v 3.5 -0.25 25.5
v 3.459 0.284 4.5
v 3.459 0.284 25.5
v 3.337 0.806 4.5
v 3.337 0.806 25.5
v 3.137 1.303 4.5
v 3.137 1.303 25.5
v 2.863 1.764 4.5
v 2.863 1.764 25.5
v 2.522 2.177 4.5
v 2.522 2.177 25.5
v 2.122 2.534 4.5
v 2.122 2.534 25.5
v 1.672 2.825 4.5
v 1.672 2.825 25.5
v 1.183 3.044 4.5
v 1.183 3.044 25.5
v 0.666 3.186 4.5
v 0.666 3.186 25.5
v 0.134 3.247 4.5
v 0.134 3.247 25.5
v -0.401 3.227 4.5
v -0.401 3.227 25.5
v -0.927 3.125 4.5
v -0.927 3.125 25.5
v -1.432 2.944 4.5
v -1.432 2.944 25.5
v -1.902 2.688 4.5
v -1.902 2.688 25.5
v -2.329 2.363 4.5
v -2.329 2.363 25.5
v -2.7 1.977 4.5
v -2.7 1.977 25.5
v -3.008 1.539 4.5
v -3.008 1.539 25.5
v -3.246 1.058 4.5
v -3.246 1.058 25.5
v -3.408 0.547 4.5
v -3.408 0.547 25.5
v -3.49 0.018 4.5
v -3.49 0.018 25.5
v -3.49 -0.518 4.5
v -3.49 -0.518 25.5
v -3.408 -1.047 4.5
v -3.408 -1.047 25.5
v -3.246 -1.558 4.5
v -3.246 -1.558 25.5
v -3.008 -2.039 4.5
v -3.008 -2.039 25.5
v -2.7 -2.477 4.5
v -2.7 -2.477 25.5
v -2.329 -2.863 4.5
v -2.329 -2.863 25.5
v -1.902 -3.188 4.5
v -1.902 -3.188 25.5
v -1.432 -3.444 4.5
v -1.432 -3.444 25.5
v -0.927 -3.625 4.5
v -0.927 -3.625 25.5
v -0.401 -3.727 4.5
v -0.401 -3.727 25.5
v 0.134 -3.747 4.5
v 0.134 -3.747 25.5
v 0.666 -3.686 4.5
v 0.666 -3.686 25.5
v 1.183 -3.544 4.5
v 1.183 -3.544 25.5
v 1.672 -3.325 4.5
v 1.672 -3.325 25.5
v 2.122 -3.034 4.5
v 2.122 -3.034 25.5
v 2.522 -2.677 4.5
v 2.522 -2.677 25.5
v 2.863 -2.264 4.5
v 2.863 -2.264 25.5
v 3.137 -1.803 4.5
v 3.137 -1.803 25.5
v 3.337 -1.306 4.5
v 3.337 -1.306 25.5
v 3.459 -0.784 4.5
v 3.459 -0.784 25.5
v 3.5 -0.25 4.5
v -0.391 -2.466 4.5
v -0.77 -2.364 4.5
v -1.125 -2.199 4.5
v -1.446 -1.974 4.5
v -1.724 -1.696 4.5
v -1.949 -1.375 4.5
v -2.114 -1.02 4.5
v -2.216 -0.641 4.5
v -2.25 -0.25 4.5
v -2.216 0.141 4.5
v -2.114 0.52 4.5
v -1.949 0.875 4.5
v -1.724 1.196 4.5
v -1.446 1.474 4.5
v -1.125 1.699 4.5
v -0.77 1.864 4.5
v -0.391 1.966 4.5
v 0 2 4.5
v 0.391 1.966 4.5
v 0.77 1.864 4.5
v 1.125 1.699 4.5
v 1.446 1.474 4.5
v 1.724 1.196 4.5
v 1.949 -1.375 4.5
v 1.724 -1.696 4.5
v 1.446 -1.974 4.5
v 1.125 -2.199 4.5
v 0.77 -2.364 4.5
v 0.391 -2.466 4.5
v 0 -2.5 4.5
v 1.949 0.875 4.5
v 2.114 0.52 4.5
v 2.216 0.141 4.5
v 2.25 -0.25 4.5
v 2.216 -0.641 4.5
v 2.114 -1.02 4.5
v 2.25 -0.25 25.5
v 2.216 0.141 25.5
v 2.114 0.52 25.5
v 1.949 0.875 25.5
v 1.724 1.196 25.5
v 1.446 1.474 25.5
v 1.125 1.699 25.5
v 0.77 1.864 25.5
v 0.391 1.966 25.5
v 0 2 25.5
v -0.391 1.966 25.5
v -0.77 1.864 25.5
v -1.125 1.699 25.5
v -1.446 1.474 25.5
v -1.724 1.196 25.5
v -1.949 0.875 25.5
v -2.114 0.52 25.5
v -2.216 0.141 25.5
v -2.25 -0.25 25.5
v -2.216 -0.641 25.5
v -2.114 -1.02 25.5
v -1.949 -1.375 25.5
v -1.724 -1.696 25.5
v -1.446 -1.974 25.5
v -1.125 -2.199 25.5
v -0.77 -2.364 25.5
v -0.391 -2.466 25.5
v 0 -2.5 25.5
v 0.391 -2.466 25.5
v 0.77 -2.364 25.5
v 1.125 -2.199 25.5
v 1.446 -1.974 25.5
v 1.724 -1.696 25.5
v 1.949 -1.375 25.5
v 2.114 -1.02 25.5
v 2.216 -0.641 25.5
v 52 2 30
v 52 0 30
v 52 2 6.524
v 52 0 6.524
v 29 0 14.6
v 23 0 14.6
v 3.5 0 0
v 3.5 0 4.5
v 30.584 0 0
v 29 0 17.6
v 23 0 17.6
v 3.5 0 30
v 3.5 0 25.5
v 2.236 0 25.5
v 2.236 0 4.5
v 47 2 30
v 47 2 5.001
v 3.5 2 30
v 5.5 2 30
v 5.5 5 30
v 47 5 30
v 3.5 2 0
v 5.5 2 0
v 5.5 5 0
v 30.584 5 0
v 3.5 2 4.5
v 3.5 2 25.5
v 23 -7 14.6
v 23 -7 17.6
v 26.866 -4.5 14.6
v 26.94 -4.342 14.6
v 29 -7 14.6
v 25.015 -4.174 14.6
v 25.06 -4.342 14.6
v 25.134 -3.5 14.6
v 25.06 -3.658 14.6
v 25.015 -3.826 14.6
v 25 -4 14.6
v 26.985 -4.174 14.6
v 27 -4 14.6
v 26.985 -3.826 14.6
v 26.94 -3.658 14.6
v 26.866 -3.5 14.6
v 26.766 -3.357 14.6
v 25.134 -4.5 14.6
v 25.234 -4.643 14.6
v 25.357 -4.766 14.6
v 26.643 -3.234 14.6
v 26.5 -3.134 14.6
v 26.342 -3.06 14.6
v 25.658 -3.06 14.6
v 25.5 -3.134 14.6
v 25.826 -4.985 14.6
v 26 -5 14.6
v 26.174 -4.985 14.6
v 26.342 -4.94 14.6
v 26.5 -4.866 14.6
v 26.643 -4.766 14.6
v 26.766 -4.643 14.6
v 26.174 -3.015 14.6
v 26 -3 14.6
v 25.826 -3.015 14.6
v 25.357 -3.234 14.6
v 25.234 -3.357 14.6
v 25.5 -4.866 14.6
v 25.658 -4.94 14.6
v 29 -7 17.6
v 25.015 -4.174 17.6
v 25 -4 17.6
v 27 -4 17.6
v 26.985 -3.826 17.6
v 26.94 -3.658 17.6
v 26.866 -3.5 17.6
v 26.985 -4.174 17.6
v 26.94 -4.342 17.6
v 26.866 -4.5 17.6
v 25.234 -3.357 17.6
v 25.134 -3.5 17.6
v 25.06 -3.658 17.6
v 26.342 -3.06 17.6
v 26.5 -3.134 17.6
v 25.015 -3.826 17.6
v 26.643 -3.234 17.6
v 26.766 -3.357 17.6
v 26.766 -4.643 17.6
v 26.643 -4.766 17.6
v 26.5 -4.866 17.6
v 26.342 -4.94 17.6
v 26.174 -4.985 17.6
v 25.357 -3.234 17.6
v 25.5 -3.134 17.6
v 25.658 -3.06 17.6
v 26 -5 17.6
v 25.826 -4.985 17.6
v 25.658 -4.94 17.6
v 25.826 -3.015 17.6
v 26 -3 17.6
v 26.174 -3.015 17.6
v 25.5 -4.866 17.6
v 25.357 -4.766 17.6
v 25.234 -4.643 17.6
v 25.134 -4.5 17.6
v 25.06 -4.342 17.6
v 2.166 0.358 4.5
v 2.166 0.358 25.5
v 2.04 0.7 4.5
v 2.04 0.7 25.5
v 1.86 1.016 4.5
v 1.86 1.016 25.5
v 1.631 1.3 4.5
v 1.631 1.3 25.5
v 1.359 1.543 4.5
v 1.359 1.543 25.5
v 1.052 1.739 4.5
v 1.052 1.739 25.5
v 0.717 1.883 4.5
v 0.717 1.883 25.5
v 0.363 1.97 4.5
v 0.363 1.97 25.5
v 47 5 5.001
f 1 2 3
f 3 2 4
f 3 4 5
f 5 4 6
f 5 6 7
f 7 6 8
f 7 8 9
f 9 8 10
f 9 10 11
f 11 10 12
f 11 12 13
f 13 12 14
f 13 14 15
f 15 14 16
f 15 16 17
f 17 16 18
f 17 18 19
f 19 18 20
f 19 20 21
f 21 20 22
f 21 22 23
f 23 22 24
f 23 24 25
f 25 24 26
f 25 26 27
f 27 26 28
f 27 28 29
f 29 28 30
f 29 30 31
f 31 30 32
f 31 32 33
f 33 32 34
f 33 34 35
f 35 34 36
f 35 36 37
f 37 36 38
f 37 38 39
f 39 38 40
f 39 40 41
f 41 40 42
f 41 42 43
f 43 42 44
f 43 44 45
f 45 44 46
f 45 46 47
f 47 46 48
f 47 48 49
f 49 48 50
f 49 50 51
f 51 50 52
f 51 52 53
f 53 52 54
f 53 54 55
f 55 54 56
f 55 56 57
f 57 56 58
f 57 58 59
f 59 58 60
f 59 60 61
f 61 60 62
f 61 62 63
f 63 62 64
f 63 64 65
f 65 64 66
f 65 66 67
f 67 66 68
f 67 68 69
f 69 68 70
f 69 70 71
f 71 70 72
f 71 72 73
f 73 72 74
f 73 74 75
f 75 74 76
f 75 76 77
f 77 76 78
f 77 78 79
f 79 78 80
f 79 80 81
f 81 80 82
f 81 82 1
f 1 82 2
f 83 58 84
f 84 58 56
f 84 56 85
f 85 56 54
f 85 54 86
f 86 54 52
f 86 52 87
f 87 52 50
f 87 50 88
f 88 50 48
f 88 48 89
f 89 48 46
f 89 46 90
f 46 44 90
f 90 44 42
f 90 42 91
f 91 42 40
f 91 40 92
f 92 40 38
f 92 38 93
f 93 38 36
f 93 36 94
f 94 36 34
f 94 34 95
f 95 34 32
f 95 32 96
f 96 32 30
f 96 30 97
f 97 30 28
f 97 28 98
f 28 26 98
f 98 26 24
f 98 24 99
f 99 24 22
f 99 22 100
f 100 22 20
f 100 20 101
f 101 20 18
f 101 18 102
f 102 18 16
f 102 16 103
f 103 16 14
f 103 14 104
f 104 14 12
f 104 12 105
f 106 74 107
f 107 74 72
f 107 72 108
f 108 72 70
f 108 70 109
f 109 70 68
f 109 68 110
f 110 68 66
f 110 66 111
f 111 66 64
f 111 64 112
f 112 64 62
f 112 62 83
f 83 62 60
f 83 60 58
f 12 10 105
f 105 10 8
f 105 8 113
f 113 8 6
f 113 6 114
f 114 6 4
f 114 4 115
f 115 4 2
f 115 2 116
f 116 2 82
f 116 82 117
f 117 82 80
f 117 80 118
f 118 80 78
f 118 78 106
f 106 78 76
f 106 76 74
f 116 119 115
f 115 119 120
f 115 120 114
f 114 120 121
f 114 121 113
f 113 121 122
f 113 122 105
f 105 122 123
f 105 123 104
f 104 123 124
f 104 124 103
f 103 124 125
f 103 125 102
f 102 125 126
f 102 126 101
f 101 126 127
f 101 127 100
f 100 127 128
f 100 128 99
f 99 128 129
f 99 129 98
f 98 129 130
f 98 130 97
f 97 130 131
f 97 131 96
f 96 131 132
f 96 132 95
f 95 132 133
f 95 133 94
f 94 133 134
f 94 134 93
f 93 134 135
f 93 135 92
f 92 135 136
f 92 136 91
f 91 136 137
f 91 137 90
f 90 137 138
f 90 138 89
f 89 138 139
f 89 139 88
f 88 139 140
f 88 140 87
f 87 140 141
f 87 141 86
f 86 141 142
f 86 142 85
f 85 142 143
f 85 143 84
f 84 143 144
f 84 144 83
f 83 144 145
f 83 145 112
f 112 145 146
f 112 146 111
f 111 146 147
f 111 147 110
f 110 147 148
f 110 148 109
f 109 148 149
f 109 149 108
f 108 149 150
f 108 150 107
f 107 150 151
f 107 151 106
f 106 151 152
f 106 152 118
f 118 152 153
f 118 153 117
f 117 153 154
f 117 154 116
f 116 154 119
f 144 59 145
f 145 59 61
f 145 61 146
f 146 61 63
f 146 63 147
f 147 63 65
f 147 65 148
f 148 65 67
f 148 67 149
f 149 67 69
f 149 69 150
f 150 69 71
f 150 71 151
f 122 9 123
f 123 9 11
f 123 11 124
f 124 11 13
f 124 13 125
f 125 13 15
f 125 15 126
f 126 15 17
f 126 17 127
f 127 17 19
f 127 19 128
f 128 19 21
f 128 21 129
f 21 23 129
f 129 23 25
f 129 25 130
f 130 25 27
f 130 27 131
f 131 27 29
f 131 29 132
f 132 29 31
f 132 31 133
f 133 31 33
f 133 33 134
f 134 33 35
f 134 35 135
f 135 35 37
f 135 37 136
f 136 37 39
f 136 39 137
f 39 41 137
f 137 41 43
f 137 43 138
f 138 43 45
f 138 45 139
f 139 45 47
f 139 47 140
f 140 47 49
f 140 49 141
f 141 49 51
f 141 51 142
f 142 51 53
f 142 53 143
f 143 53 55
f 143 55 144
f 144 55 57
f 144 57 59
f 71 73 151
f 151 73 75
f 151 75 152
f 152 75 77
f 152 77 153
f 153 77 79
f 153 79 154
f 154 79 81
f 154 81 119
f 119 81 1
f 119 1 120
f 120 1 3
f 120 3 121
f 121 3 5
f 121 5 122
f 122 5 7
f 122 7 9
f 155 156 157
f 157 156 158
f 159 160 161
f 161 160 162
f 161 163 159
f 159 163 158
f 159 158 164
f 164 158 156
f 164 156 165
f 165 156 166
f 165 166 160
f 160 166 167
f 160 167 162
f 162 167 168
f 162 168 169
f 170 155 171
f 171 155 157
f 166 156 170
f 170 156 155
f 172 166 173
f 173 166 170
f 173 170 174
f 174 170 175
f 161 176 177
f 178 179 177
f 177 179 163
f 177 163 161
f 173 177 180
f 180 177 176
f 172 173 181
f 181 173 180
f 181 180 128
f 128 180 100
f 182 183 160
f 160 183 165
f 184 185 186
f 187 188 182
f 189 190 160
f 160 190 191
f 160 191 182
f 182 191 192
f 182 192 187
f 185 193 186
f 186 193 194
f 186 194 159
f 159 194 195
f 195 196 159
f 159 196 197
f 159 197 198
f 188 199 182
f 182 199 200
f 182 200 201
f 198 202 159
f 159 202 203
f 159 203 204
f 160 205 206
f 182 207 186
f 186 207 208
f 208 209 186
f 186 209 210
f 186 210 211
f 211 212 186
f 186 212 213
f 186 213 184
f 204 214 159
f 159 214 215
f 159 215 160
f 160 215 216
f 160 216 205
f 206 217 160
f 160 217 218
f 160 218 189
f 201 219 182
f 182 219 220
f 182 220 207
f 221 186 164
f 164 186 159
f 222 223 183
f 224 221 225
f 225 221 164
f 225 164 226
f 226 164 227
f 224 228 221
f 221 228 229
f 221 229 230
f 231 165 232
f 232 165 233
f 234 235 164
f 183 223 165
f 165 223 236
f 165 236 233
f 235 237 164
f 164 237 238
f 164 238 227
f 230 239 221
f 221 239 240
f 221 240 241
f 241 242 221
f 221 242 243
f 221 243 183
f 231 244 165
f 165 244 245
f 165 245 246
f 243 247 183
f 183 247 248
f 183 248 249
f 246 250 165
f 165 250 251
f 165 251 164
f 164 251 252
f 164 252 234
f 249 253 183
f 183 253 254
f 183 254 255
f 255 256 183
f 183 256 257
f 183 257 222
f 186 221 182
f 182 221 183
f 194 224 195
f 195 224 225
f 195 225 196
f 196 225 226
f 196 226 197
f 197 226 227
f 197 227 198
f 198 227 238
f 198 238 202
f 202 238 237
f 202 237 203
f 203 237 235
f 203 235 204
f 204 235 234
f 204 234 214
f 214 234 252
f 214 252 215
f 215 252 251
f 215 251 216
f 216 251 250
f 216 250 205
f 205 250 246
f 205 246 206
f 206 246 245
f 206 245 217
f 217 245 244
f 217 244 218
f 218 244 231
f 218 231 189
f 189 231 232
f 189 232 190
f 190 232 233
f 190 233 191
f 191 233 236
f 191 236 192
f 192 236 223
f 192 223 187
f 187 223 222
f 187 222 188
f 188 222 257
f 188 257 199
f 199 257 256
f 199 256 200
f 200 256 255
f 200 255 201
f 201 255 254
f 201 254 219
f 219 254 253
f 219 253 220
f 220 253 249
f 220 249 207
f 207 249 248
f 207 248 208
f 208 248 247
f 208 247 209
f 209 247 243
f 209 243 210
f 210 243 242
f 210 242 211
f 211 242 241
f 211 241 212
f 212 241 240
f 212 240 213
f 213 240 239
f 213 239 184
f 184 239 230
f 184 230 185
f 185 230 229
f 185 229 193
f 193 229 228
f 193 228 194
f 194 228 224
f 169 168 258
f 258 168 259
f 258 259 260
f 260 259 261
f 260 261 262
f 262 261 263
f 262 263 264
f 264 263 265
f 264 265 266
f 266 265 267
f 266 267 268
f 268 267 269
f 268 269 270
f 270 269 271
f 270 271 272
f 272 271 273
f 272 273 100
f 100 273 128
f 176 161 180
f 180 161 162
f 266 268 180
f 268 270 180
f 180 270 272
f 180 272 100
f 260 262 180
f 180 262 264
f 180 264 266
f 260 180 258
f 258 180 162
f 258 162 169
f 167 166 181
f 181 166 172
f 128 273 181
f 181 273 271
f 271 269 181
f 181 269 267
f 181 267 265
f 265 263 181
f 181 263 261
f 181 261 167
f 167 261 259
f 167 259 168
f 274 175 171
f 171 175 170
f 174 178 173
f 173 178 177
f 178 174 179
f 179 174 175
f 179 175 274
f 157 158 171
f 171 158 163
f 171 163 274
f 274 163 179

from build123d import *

# Parameters (mm, degrees)
SKETCH1_W                = 52
SKETCH1_H                = 30
BOSS_EXTRUDE1_DEPTH      = 2
SKETCH3_W                = 6
SKETCH3_H                = 3
BOSS_EXTRUDE3_DEPTH      = 7
SKETCH4_R                = 1
CUT_EXTRUDE1_DEPTH       = 56.342208124
BOSS_EXTRUDE4_DEPTH      = 10.5
BOSS_EXTRUDE4_DEPTH_BACK = 10.5
SKETCH5_R                = 3.5
SKETCH5_R_2              = 2.25
SKETCH6_R                = 2.25
CUT_EXTRUDE2_DEPTH       = 61.440052945
SKETCH7_W                = 4.769814724
SKETCH7_H                = 4.854263269
SKETCH7_W_2              = 3.5
SKETCH7_H_2              = 7.262003205
CUT_EXTRUDE3_DEPTH       = 61.704200843
SKETCH8_W                = 41.5
SKETCH8_H                = 30
BOSS_EXTRUDE5_DEPTH      = 3
CUT_EXTRUDE4_DEPTH       = 61.440052945


with BuildPart() as part:
    # Sketch1 → Boss-Extrude1 (new body)
    with BuildSketch(Plane(origin=(0, 0, 0), x_dir=(1, 0, 0), z_dir=(0, 1, 0))):
        with Locations((26, -15)):
            Rectangle(SKETCH1_W, SKETCH1_H)
    extrude(amount=BOSS_EXTRUDE1_DEPTH)

    # Sketch3 → Boss-Extrude3 (add)
    with BuildSketch(Plane.XZ):
        with Locations((26, 16.1)):
            Rectangle(SKETCH3_W, SKETCH3_H)
    extrude(amount=BOSS_EXTRUDE3_DEPTH)

    # Sketch4 → Cut-Extrude1 (cut, through all)
    with BuildSketch(Plane.XY.offset(17.6)):
        with Locations((26, -4)):
            Circle(SKETCH4_R)
    extrude(amount=-CUT_EXTRUDE1_DEPTH, mode=Mode.SUBTRACT)

    # Sketch6 → Cut-Extrude2 (cut, through all)
    with BuildSketch(Plane.XY.offset(30)):
        with Locations((0, -0.25)):
            Circle(SKETCH6_R)
    extrude(amount=-CUT_EXTRUDE2_DEPTH, mode=Mode.SUBTRACT)

    # Sketch7 → Cut-Extrude3 (cut, through all)
    with BuildSketch(Plane(origin=(0, 2, 0), x_dir=(1, 0, 0), z_dir=(0, 1, 0))):
        with Locations((1.115092638, -27.927131635)):
            Rectangle(SKETCH7_W, SKETCH7_H)
        with Locations((1.75, -0.868998397)):
            Rectangle(SKETCH7_W_2, SKETCH7_H_2)
    extrude(amount=-CUT_EXTRUDE3_DEPTH, mode=Mode.SUBTRACT)

    # Sketch8 → Boss-Extrude5 (add)
    with BuildSketch(Plane(origin=(0, 2, 0), x_dir=(1, 0, 0), z_dir=(0, 1, 0))):
        with Locations((26.25, -15)):
            Rectangle(SKETCH8_W, SKETCH8_H)
    extrude(amount=BOSS_EXTRUDE5_DEPTH)

    # Sketch9 → Cut-Extrude4 (cut, through all)
    with BuildSketch(Plane.XZ):
        Polygon((30.583920936, 0), (52, 6.523601303), (52, -3.845596105), (30.583920936, -3.845596105), align=None)
    extrude(amount=-CUT_EXTRUDE4_DEPTH, mode=Mode.SUBTRACT)


with BuildPart() as body_2:
    # Sketch5 → Boss-Extrude4 (new, two sides: drawn at the far end of the back side and taken through both)
    with BuildSketch(Plane.XY.offset(15).offset(-BOSS_EXTRUDE4_DEPTH_BACK)):
        with Locations((0, -0.25)):
            Circle(SKETCH5_R)
        with Locations((0, -0.25)):
            Circle(SKETCH5_R_2, mode=Mode.SUBTRACT)
    extrude(amount=BOSS_EXTRUDE4_DEPTH + BOSS_EXTRUDE4_DEPTH_BACK)


solid = Compound([part.part, body_2.part])
